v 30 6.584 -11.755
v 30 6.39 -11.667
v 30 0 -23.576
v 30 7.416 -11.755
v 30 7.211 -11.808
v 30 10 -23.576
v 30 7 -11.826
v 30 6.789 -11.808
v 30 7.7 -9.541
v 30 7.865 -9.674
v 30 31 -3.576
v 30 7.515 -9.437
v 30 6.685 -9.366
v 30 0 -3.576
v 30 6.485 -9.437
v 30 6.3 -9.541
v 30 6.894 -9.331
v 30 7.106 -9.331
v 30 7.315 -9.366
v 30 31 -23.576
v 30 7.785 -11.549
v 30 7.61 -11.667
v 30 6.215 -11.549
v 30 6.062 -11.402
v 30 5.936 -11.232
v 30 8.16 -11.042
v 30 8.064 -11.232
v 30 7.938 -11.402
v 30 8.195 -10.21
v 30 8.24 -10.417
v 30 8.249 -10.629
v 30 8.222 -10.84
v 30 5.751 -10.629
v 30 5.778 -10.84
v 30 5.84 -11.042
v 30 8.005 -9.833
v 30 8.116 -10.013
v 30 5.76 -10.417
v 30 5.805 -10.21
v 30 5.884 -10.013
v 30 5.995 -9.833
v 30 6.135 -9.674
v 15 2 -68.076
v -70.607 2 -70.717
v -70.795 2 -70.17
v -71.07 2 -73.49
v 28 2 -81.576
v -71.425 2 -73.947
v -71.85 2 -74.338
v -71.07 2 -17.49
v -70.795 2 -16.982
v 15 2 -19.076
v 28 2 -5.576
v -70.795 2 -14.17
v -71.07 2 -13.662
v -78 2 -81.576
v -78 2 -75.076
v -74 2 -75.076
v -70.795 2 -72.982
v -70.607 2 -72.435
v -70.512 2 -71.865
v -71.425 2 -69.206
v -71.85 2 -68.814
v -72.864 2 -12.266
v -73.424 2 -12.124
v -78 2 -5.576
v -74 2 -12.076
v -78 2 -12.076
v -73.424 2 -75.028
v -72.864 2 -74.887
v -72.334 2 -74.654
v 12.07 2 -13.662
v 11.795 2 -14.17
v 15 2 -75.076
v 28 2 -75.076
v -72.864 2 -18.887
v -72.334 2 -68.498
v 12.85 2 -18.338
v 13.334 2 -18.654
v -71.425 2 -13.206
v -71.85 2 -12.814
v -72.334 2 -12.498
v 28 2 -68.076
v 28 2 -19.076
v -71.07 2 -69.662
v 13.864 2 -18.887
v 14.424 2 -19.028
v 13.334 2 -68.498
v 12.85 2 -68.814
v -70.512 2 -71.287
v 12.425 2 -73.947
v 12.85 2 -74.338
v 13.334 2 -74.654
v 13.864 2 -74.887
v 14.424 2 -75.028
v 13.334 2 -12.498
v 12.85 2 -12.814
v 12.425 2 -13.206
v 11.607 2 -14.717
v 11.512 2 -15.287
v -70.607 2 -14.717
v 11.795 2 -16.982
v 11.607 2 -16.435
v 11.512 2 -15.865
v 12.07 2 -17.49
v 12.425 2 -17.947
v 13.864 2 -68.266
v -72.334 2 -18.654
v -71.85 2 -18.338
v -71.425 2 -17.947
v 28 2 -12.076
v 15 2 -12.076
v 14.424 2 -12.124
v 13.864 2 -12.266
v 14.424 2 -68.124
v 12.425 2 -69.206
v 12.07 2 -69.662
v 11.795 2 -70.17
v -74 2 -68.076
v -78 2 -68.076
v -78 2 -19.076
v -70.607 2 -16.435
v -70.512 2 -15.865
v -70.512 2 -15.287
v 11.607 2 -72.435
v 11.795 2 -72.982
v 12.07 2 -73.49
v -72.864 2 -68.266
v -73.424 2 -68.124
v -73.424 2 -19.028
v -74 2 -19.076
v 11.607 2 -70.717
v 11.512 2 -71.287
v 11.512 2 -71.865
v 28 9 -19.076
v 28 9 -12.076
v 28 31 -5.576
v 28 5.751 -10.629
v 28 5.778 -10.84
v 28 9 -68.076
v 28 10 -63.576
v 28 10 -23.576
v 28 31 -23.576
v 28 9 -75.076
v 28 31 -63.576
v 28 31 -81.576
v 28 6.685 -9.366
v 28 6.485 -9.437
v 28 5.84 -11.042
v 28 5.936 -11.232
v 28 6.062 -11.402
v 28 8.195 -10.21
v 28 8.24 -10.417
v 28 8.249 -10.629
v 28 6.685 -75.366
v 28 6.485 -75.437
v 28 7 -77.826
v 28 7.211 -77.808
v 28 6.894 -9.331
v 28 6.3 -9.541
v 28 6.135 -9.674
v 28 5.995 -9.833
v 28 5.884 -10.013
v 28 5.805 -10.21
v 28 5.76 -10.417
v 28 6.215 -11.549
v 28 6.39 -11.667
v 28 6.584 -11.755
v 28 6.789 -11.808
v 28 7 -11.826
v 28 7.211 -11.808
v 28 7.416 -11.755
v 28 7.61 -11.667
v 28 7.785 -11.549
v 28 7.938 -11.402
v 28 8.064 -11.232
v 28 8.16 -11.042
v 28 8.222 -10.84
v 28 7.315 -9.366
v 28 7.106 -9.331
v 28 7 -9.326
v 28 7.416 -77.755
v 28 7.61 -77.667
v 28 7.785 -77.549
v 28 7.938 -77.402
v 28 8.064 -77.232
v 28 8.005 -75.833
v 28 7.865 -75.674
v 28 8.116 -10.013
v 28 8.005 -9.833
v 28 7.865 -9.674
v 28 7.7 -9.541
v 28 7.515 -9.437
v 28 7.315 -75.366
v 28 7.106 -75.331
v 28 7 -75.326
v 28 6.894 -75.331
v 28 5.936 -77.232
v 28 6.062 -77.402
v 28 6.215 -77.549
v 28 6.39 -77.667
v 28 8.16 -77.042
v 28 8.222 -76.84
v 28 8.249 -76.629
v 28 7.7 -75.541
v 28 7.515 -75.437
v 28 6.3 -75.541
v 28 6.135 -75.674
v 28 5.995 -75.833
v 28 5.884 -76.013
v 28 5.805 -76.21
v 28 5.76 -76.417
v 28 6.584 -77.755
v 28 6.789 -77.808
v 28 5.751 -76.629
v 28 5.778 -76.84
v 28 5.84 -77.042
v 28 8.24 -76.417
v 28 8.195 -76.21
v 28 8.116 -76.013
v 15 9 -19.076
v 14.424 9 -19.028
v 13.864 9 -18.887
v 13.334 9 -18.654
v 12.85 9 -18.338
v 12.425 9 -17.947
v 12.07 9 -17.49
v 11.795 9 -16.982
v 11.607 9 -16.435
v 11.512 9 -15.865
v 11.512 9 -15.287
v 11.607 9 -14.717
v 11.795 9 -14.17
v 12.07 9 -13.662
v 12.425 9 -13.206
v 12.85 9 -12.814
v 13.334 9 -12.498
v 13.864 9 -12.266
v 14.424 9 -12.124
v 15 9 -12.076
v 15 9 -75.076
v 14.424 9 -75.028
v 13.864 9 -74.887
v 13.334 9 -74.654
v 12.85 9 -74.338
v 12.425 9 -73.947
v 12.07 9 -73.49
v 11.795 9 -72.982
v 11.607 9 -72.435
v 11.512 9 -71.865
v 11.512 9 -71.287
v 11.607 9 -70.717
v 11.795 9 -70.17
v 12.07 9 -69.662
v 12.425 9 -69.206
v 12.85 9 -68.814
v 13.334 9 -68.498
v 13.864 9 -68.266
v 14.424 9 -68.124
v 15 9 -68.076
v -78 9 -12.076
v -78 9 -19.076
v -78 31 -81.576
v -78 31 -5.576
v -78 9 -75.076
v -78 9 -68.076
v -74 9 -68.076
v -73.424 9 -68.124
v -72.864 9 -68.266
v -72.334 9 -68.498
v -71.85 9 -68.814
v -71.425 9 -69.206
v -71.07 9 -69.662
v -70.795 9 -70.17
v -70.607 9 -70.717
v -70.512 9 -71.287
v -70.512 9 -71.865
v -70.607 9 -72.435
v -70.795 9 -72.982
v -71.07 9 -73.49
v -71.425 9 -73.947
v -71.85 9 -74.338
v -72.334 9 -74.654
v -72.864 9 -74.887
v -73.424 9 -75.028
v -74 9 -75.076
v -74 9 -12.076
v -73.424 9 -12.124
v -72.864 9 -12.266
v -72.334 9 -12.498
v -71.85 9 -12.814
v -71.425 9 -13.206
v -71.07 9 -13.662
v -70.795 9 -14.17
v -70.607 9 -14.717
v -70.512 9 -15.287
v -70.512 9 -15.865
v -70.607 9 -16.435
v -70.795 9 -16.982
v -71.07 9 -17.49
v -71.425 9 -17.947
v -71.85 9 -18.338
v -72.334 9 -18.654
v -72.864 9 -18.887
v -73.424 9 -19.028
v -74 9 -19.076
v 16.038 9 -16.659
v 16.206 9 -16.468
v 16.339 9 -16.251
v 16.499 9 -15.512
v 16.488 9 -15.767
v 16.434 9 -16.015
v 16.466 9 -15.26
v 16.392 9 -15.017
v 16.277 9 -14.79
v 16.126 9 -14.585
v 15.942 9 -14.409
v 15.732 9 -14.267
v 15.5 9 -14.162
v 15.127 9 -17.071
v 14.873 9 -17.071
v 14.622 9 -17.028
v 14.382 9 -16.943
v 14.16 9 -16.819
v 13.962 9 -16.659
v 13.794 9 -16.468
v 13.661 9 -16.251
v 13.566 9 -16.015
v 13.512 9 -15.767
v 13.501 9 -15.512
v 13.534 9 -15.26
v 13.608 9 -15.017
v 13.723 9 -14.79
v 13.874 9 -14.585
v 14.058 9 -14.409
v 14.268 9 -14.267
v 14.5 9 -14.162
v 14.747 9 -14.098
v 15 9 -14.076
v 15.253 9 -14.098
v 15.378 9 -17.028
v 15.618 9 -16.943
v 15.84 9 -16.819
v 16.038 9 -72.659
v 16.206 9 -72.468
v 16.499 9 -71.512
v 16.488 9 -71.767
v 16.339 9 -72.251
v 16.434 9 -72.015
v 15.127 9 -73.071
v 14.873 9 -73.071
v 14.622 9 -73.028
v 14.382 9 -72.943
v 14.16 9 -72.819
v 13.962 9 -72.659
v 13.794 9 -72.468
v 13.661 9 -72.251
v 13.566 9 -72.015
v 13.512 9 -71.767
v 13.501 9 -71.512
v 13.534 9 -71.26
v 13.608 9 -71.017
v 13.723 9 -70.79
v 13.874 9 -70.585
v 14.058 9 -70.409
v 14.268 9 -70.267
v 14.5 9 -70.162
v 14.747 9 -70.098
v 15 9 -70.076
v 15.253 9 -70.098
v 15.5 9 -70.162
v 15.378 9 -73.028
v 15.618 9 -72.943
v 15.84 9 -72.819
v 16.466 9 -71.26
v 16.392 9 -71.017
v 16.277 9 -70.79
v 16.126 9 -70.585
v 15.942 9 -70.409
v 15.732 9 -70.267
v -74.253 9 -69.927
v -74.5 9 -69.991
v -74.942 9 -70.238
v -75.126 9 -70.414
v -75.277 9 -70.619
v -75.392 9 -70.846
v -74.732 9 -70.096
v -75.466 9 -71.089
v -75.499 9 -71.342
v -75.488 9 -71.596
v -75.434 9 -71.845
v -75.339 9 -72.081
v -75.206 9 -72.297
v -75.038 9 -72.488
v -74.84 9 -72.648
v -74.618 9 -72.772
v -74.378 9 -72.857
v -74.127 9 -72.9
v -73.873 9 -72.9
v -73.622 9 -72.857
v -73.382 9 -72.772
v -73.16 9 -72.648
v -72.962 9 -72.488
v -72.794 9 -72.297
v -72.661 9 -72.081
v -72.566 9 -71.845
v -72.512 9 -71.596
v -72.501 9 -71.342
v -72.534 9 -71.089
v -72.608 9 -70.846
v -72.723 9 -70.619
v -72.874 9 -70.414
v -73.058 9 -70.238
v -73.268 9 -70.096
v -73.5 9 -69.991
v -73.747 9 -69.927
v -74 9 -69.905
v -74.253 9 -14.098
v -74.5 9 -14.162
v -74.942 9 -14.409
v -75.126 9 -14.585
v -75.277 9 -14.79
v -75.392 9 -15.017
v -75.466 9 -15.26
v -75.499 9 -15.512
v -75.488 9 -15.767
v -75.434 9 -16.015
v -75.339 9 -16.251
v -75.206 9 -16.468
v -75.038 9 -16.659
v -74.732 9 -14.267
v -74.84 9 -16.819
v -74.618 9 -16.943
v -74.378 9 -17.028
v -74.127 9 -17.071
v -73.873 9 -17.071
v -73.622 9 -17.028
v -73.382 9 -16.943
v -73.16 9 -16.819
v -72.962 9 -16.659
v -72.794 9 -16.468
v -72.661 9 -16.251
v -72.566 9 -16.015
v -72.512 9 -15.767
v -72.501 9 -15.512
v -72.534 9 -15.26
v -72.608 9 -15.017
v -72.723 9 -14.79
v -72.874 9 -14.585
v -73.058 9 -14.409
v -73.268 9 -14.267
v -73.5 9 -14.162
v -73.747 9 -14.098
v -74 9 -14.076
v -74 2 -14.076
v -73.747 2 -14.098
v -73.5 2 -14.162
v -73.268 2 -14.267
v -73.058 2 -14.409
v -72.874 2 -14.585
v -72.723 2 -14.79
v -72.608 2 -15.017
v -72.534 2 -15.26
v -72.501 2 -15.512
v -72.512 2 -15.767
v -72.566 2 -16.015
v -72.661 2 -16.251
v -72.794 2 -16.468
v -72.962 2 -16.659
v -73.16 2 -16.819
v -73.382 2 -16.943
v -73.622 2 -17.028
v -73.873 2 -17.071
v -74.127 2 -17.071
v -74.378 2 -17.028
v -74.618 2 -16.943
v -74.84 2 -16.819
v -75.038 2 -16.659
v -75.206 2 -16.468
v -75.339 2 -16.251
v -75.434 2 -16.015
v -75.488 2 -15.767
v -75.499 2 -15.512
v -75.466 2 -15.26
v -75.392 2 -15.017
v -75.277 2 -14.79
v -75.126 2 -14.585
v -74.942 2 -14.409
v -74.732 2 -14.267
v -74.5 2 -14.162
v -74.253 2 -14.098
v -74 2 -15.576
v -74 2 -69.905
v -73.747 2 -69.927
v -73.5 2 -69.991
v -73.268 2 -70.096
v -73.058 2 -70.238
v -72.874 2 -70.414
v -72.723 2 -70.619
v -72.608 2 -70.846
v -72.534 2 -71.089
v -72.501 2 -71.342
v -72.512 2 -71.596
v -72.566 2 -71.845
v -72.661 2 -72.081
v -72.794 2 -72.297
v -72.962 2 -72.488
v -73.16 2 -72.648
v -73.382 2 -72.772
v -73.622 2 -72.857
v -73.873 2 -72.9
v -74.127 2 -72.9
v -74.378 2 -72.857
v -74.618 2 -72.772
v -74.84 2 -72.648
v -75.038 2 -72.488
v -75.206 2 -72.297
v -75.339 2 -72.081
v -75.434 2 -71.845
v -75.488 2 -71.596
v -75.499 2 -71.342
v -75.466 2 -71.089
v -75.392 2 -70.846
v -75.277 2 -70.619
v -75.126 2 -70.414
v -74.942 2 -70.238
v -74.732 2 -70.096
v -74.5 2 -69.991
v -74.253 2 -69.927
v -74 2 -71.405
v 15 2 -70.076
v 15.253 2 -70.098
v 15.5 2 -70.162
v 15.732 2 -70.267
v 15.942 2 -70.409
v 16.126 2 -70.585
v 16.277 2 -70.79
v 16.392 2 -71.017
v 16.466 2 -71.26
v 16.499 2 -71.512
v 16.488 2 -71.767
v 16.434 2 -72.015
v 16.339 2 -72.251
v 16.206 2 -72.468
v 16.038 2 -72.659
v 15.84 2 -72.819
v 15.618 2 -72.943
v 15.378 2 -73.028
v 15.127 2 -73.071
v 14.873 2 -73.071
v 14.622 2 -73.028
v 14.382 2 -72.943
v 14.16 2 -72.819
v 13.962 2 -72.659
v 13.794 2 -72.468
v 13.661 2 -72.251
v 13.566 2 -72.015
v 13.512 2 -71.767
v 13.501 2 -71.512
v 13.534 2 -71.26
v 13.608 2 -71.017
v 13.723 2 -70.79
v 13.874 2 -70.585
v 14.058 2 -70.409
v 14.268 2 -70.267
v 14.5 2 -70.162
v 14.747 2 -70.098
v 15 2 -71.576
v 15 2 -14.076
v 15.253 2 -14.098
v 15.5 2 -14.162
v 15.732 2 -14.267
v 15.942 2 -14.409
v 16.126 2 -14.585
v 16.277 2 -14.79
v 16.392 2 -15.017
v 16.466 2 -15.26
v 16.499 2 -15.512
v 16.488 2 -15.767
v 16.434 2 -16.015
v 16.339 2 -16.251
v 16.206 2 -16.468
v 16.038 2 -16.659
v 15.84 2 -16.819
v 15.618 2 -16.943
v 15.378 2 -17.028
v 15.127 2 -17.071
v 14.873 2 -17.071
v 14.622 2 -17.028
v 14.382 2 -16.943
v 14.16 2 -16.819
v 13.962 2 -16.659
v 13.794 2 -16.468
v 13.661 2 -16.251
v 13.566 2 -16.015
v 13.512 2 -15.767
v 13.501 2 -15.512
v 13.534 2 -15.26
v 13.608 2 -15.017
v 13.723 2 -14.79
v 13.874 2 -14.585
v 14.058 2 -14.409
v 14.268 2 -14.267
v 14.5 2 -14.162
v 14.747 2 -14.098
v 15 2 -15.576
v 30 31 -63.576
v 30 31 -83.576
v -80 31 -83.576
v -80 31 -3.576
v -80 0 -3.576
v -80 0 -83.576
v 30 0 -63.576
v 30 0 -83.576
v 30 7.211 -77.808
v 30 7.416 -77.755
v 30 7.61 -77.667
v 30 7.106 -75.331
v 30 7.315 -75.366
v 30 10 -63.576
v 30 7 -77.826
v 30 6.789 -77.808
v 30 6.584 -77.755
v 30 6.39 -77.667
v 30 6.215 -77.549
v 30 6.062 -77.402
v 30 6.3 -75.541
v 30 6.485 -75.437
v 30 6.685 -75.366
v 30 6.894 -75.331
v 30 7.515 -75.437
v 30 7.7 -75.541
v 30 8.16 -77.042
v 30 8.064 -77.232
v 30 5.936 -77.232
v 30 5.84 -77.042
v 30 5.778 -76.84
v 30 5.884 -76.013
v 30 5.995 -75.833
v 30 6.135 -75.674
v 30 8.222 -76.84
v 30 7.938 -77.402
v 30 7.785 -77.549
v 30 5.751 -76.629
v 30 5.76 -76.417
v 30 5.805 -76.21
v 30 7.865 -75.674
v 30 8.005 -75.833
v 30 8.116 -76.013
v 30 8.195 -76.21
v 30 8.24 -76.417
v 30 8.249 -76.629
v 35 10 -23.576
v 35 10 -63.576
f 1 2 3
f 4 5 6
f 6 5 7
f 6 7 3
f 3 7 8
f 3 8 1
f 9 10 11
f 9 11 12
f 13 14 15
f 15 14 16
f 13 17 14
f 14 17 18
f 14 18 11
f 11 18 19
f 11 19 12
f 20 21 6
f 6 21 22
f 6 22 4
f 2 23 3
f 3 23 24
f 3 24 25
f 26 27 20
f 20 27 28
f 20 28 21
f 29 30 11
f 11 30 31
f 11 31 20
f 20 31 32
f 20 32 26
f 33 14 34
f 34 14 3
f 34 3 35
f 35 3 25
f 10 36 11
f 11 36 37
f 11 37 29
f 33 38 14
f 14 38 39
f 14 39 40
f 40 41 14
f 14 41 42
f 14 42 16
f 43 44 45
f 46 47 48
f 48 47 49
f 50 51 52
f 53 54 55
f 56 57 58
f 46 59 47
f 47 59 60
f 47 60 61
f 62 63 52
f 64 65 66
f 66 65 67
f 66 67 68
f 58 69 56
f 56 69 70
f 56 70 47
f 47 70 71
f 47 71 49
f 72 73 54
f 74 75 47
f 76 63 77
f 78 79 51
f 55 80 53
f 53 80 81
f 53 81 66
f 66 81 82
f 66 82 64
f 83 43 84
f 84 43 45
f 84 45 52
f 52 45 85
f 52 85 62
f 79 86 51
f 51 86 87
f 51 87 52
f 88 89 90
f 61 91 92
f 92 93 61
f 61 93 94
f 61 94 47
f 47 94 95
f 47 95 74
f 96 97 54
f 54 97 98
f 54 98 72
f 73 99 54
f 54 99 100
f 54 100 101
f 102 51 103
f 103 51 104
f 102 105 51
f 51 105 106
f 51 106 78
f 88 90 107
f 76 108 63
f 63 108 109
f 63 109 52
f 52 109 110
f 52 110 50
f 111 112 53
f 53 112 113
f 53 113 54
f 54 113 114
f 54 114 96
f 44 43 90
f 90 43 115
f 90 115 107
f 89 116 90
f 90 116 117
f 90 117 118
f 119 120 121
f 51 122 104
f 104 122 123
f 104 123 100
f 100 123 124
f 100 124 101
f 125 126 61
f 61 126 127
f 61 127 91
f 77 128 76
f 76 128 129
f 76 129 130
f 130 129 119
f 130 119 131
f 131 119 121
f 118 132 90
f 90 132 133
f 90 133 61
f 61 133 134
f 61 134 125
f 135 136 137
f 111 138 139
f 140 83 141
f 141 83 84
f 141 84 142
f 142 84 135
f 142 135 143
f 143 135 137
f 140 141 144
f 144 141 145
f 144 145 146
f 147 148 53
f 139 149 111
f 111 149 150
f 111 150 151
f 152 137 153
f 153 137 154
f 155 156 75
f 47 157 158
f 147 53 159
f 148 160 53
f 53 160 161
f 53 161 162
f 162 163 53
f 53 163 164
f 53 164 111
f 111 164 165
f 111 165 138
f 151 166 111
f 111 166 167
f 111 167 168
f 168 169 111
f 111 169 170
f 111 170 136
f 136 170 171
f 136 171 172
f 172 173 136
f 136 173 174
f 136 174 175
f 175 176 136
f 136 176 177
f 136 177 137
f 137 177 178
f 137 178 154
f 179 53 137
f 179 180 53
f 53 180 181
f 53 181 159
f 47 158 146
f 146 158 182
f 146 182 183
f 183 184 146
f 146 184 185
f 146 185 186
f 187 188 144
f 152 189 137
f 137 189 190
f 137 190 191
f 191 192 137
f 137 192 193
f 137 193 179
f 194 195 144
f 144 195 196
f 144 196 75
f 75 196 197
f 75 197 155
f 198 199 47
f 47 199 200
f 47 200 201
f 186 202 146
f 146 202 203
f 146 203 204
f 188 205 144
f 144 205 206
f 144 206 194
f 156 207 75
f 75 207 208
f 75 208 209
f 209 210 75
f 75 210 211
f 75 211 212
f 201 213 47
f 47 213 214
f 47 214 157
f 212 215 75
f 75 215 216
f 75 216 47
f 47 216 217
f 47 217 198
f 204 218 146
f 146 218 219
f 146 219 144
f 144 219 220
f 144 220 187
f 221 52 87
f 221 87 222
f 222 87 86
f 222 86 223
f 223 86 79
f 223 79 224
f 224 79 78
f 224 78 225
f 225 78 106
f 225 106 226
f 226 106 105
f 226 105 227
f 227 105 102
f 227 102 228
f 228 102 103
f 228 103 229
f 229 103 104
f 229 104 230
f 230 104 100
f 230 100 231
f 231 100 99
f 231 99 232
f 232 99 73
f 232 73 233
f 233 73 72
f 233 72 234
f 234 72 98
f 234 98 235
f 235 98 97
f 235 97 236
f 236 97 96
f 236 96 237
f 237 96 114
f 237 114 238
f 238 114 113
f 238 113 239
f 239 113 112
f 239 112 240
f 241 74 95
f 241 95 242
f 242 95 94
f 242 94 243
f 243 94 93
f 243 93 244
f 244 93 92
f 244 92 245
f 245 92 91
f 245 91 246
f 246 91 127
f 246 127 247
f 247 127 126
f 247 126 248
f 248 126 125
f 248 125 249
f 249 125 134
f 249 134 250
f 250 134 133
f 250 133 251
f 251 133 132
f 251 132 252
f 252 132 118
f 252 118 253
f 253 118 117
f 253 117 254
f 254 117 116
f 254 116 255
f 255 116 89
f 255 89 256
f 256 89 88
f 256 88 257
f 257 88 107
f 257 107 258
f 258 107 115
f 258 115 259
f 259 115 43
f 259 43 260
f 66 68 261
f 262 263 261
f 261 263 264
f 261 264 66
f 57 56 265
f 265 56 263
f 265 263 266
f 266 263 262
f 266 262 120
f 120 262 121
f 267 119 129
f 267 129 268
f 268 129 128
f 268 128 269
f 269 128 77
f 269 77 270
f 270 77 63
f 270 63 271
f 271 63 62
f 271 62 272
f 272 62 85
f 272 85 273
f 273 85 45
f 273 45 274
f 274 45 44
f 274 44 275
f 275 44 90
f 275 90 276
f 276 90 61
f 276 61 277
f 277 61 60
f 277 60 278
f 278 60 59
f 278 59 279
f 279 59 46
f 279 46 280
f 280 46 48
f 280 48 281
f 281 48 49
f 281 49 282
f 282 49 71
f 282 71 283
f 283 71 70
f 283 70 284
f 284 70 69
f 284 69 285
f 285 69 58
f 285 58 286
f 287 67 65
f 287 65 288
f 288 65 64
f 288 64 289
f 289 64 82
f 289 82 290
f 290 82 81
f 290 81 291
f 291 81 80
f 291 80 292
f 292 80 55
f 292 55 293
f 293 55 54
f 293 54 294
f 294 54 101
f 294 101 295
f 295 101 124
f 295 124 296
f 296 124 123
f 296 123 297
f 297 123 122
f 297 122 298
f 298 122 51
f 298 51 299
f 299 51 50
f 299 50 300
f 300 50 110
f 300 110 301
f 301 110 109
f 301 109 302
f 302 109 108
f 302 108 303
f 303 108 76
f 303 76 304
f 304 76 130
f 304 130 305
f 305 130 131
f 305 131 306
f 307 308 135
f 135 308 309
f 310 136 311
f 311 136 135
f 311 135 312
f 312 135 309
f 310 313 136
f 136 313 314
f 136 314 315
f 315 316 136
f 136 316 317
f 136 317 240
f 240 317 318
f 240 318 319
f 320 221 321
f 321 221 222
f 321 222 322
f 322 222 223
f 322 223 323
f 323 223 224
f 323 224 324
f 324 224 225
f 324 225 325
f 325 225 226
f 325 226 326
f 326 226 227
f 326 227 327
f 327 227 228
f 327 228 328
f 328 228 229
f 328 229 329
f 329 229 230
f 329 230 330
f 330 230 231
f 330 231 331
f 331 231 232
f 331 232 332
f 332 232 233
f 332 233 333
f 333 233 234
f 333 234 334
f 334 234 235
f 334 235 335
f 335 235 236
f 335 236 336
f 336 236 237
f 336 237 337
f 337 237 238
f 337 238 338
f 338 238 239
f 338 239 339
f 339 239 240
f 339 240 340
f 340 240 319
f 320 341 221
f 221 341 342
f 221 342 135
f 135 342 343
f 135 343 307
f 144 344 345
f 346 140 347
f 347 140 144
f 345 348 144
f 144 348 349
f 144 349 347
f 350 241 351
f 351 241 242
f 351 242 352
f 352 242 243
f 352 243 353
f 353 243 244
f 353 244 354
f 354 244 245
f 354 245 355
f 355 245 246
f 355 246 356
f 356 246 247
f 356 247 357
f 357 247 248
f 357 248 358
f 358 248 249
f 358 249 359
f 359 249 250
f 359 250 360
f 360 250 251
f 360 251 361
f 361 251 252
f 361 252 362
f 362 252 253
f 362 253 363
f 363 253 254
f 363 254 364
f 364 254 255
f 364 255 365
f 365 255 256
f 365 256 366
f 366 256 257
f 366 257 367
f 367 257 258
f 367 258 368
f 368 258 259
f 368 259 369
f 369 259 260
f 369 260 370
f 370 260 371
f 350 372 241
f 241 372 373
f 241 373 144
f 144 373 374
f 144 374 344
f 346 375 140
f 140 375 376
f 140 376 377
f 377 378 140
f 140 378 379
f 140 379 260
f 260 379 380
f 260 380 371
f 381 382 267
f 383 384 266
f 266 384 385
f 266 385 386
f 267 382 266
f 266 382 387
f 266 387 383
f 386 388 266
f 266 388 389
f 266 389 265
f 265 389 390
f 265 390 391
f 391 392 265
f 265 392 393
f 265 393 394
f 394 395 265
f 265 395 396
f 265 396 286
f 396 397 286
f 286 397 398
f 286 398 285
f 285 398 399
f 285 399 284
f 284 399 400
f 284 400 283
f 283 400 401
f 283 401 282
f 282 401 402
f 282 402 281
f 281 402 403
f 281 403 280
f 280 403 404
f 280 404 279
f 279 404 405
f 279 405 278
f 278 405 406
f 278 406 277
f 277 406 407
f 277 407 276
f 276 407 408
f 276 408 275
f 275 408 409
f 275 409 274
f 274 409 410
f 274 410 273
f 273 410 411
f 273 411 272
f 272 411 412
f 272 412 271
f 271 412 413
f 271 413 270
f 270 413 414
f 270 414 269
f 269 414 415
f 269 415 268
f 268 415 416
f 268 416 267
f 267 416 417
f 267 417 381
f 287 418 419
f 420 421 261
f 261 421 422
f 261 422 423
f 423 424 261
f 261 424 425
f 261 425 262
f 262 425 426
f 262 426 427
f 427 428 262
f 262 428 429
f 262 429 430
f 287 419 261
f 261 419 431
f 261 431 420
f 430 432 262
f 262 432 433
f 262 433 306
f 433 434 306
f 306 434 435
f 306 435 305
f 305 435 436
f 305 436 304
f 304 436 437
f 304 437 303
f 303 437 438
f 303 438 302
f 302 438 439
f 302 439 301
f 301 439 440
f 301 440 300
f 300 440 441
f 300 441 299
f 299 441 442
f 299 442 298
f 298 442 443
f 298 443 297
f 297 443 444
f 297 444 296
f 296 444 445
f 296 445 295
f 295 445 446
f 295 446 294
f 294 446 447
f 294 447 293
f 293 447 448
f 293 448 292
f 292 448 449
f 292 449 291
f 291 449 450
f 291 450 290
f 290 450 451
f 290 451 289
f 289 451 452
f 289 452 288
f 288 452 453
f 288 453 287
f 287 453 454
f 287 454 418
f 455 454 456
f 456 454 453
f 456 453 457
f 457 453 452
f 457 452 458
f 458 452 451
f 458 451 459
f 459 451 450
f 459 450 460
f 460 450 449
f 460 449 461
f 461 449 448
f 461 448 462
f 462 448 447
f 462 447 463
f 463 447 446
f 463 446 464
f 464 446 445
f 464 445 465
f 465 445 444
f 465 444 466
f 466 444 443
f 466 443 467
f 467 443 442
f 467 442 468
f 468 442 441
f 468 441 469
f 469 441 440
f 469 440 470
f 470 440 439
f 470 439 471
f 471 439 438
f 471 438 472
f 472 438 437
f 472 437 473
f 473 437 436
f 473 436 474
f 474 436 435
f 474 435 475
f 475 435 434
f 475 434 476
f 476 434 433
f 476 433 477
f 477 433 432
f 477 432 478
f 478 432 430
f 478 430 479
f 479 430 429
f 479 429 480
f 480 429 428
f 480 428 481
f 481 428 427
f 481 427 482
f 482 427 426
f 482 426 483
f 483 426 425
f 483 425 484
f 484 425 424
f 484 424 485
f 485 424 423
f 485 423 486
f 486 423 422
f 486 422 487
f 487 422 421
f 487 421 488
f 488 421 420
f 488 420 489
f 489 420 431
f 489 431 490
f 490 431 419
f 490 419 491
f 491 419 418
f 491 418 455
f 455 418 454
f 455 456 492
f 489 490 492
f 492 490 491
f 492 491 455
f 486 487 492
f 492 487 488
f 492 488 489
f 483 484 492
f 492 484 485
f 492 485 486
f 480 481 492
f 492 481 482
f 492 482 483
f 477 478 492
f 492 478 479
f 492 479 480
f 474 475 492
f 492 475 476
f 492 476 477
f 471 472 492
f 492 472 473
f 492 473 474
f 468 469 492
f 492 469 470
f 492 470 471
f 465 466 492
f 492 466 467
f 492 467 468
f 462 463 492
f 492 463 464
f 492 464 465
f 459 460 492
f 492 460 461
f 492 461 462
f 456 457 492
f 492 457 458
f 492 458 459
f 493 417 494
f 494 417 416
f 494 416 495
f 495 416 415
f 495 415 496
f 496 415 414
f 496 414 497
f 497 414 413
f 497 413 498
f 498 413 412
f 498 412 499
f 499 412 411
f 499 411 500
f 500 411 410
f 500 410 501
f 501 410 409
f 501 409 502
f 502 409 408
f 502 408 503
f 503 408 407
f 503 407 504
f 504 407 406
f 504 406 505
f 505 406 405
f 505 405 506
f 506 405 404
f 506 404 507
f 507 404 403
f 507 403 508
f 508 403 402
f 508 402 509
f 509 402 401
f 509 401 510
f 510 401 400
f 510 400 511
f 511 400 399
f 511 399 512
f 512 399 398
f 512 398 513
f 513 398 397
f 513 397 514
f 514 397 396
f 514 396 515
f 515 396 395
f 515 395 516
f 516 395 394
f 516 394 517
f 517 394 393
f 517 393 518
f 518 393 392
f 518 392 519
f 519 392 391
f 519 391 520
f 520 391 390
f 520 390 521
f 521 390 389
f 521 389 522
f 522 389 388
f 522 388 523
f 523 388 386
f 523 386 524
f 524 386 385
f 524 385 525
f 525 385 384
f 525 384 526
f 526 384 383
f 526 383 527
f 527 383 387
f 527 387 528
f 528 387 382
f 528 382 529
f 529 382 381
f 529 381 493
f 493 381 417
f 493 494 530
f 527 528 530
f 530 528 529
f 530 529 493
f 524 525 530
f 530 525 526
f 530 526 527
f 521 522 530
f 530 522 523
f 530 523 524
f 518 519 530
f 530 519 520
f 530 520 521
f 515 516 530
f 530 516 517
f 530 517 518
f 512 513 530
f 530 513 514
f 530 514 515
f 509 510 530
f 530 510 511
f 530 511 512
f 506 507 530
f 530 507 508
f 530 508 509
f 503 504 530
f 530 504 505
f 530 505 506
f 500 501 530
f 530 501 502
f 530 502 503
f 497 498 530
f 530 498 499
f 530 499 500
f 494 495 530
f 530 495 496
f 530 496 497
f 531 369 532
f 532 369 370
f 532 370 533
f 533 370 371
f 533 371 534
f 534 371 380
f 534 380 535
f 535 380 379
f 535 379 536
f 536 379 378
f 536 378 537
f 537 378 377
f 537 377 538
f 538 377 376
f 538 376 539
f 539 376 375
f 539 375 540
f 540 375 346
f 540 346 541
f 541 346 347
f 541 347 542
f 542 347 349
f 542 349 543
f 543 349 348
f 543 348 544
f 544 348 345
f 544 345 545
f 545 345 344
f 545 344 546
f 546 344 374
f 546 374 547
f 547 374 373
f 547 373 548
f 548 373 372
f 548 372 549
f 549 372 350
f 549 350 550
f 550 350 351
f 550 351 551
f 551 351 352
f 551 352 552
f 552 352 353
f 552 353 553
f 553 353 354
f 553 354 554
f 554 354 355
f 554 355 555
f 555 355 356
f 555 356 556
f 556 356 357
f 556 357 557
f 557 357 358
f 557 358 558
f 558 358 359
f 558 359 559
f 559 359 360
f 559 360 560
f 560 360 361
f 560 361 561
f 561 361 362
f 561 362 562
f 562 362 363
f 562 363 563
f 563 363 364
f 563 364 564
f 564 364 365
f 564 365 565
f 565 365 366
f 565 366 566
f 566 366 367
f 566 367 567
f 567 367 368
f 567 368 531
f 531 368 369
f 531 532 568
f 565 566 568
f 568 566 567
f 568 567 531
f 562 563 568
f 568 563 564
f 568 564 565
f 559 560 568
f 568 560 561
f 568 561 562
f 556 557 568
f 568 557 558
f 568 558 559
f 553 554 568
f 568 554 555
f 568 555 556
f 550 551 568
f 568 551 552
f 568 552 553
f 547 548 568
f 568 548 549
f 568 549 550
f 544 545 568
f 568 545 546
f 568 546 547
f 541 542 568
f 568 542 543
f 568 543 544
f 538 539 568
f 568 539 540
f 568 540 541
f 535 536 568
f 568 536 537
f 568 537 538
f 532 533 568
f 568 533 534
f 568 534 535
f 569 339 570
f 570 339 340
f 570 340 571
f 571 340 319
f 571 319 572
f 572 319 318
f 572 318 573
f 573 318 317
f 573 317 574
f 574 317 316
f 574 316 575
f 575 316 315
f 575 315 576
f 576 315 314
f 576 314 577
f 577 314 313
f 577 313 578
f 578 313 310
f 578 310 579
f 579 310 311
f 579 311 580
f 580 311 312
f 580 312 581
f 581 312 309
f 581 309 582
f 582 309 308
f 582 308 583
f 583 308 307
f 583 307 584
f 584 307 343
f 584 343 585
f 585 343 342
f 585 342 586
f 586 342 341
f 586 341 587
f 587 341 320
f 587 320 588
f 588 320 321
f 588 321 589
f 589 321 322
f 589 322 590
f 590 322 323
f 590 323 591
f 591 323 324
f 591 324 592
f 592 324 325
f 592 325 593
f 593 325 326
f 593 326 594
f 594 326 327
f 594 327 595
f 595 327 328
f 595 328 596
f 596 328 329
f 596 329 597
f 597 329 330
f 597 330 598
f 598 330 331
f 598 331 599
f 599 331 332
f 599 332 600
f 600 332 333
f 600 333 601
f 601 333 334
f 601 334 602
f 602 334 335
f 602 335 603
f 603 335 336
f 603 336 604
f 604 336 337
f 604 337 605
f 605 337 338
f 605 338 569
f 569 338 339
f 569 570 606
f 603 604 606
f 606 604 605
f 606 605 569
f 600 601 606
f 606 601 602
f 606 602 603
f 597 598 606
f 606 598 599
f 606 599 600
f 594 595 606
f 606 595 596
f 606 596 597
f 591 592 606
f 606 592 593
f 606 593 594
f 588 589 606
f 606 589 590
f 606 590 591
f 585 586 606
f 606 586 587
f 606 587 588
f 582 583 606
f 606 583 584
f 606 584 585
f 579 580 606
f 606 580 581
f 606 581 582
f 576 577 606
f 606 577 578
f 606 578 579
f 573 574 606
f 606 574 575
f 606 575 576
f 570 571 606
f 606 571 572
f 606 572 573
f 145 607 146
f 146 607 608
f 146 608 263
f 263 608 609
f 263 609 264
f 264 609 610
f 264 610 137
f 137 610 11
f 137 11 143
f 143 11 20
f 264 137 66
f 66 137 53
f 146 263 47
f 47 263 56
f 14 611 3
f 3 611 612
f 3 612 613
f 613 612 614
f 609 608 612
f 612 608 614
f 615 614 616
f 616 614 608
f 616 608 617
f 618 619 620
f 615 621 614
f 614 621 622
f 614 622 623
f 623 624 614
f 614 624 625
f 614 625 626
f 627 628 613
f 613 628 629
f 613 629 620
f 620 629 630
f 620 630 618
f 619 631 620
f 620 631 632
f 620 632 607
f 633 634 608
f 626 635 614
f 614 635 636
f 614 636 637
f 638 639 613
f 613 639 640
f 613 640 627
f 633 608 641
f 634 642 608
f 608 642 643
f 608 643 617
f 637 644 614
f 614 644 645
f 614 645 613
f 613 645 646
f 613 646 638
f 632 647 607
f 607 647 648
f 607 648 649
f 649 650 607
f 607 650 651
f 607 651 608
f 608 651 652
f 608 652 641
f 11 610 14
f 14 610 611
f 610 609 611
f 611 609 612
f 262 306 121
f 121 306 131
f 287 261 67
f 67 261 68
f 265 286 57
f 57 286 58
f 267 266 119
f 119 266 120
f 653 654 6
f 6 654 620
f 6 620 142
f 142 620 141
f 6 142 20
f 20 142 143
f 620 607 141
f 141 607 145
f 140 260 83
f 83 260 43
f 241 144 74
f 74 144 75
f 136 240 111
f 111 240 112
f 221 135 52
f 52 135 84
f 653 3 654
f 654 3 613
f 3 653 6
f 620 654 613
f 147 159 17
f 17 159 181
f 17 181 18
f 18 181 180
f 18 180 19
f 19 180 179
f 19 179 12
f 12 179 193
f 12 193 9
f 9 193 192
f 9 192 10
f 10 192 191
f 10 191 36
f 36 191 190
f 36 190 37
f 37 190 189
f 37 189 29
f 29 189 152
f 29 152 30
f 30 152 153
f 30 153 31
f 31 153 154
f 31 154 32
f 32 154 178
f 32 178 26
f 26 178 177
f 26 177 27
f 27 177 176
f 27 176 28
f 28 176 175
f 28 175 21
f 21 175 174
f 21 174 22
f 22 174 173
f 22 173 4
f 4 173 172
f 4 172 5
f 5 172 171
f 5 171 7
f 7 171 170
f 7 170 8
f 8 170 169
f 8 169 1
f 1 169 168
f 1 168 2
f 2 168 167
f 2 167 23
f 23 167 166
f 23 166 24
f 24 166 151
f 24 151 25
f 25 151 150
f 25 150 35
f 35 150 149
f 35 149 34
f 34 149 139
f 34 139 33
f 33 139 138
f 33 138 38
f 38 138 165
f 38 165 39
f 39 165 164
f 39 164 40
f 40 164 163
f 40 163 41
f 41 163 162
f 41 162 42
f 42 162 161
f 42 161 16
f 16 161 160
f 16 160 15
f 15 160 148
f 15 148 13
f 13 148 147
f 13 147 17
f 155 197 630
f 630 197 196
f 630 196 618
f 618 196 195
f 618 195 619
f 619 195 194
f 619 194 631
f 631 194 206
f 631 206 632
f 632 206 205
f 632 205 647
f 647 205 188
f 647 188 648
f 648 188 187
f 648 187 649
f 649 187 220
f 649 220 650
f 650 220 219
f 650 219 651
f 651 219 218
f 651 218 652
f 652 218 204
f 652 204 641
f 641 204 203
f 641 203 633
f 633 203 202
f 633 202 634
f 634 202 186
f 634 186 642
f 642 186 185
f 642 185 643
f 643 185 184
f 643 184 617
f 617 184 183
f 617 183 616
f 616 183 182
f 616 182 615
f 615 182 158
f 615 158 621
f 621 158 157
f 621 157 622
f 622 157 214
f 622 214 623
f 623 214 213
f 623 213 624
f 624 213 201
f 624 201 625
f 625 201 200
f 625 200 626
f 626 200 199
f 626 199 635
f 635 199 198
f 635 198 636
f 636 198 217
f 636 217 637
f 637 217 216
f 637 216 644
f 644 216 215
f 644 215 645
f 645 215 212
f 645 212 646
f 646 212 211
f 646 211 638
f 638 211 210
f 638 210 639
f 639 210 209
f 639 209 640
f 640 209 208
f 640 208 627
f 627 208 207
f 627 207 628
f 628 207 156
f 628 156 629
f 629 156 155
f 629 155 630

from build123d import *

# Parameters (mm, degrees)
SKETCH5_W            = 110
SKETCH5_H            = 80
BOSS_EXTRUDE8_DEPTH  = 2
SKETCH9_R            = 3.5
BOSS_EXTRUDE11_DEPTH = 7
SKETCH11_R           = 1.5
CUT_EXTRUDE1_DEPTH   = 7
SKETCH12_W           = 110
SKETCH12_H           = 80
SKETCH12_W_2         = 106
SKETCH12_H_2         = 76
BOSS_EXTRUDE12_DEPTH = 29
BOSS_EXTRUDE14_DEPTH = 7
BOSS_EXTRUDE15_DEPTH = 7
CUT_EXTRUDE2_REACH   = 112
SKETCH16_W           = 40
SKETCH16_H           = 21
BOSS_EXTRUDE16_DEPTH = 7
BOSS_EXTRUDE17_DEPTH = 7
BOSS_EXTRUDE18_DEPTH = 40
CUT_EXTRUDE4_REACH   = 112
SKETCH23_R           = 1.25
CUT_EXTRUDE5_REACH   = 112
SKETCH24_R           = 1.25


with BuildPart() as part:
    # Sketch5 → Boss-Extrude8 (new body)
    with BuildSketch(Plane(origin=(0, 0, 0), x_dir=(1, 0, 0), z_dir=(0, 1, 0))):
        with Locations((-25, 43.57615894)):
            Rectangle(SKETCH5_W, SKETCH5_H)
    extrude(amount=BOSS_EXTRUDE8_DEPTH)

    # Sketch9 → Boss-Extrude11 (add)
    with BuildSketch(Plane(origin=(0, 2, 0), x_dir=(1, 0, 0), z_dir=(0, 1, 0))):
        with Locations((-74, 15.57615894)):
            Circle(SKETCH9_R)
        with Locations((-74, 71.57615894)):
            Circle(SKETCH9_R)
        with Locations((15, 15.57615894)):
            Circle(SKETCH9_R)
        with Locations((15, 71.57615894)):
            Circle(SKETCH9_R)
    extrude(amount=BOSS_EXTRUDE11_DEPTH)

    # Sketch11 → Cut-Extrude1 (cut)
    with BuildSketch(Plane(origin=(0, 9, 0), x_dir=(1, 0, 0), z_dir=(0, 1, 0))):
        with Locations((-74, 15.57615894)):
            Circle(SKETCH11_R)
        with Locations((-74, 71.405276361)):
            Circle(SKETCH11_R)
        with Locations((15, 71.57615894)):
            Circle(SKETCH11_R)
        with Locations((15, 15.57615894)):
            Circle(SKETCH11_R)
    extrude(amount=-CUT_EXTRUDE1_DEPTH, mode=Mode.SUBTRACT)

    # Sketch12 → Boss-Extrude12 (add)
    with BuildSketch(Plane(origin=(0, 2, 0), x_dir=(1, 0, 0), z_dir=(0, 1, 0))):
        with Locations((-25, 43.57615894)):
            Rectangle(SKETCH12_W, SKETCH12_H)
        with Locations((-25, 43.57615894)):
            Rectangle(SKETCH12_W_2, SKETCH12_H_2, mode=Mode.SUBTRACT)
    extrude(amount=BOSS_EXTRUDE12_DEPTH)

    # Sketch14 → Boss-Extrude14 (add)
    with BuildSketch(Plane(origin=(0, 2, 0), x_dir=(1, 0, 0), z_dir=(0, 1, 0))):
        Polygon((-74, 12.07615894), (-78, 12.07615894), (-78, 19.07615894), (-74, 19.07615894), (-77.5, 15.57615894), align=None)
    extrude(amount=BOSS_EXTRUDE14_DEPTH)

    # Sketch15 → Boss-Extrude15 (add)
    with BuildSketch(Plane(origin=(0, 2, 0), x_dir=(1, 0, 0), z_dir=(0, 1, 0))):
        Polygon((-74, 75.07615894), (-78, 75.07615894), (-78, 68.07615894), (-74, 68.07615894), (-77.5, 71.57615894), align=None)
    extrude(amount=BOSS_EXTRUDE15_DEPTH)

    # Sketch16 → Cut-Extrude2 (cut, up to next)
    with BuildSketch(Plane(origin=(30, 0, 0), x_dir=(0, 0, -1), z_dir=(1, 0, 0)), mode=Mode.PRIVATE) as cut_extrude2_sk1:
        with Locations((43.57615894, 20.5)):
            Rectangle(SKETCH16_W, SKETCH16_H)
    cut_extrude2_tool1 = extrude(cut_extrude2_sk1.sketch, amount=-CUT_EXTRUDE2_REACH, mode=Mode.PRIVATE) & part.part
    add(cut_extrude2_tool1.solids().sort_by_distance((30, 20.5, -43.576159))[0], mode=Mode.SUBTRACT)

    # Sketch17 → Boss-Extrude16 (add)
    with BuildSketch(Plane(origin=(0, 2, 0), x_dir=(1, 0, 0), z_dir=(0, 1, 0))):
        Polygon((15, 75.07615894), (28, 75.07615894), (28, 68.07615894), (15, 68.07615894), (18.5, 71.57615894), align=None)
    extrude(amount=BOSS_EXTRUDE16_DEPTH)

    # Sketch18 → Boss-Extrude17 (add)
    with BuildSketch(Plane(origin=(0, 2, 0), x_dir=(1, 0, 0), z_dir=(0, 1, 0))):
        Polygon((15, 19.07615894), (28, 19.07615894), (28, 12.07615894), (15, 12.07615894), (18.5, 15.57615894), align=None)
    extrude(amount=BOSS_EXTRUDE17_DEPTH)

    # Sketch22 → Boss-Extrude18 (add)
    with BuildSketch(Plane.XY.offset(-63.57615894)):
        Polygon((30, 10), (35, 10), (30, 0), align=None)
    extrude(amount=BOSS_EXTRUDE18_DEPTH)

    # Sketch23 → Cut-Extrude4 (cut, up to next)
    with BuildSketch(Plane(origin=(30, 0, 0), x_dir=(0, 0, -1), z_dir=(1, 0, 0)), mode=Mode.PRIVATE) as cut_extrude4_sk1:
        with Locations((10.57615894, 7)):
            Circle(SKETCH23_R)
    cut_extrude4_tool1 = extrude(cut_extrude4_sk1.sketch, amount=-CUT_EXTRUDE4_REACH, mode=Mode.PRIVATE) & part.part
    add(cut_extrude4_tool1.solids().sort_by_distance((30, 7, -10.576159))[0], mode=Mode.SUBTRACT)

    # Sketch24 → Cut-Extrude5 (cut, up to next)
    with BuildSketch(Plane(origin=(30, 0, 0), x_dir=(0, 0, -1), z_dir=(1, 0, 0)), mode=Mode.PRIVATE) as cut_extrude5_sk1:
        with Locations((76.57615894, 7)):
            Circle(SKETCH24_R)
    cut_extrude5_tool1 = extrude(cut_extrude5_sk1.sketch, amount=-CUT_EXTRUDE5_REACH, mode=Mode.PRIVATE) & part.part
    add(cut_extrude5_tool1.solids().sort_by_distance((30, 7, -76.576159))[0], mode=Mode.SUBTRACT)


solid = part.part
